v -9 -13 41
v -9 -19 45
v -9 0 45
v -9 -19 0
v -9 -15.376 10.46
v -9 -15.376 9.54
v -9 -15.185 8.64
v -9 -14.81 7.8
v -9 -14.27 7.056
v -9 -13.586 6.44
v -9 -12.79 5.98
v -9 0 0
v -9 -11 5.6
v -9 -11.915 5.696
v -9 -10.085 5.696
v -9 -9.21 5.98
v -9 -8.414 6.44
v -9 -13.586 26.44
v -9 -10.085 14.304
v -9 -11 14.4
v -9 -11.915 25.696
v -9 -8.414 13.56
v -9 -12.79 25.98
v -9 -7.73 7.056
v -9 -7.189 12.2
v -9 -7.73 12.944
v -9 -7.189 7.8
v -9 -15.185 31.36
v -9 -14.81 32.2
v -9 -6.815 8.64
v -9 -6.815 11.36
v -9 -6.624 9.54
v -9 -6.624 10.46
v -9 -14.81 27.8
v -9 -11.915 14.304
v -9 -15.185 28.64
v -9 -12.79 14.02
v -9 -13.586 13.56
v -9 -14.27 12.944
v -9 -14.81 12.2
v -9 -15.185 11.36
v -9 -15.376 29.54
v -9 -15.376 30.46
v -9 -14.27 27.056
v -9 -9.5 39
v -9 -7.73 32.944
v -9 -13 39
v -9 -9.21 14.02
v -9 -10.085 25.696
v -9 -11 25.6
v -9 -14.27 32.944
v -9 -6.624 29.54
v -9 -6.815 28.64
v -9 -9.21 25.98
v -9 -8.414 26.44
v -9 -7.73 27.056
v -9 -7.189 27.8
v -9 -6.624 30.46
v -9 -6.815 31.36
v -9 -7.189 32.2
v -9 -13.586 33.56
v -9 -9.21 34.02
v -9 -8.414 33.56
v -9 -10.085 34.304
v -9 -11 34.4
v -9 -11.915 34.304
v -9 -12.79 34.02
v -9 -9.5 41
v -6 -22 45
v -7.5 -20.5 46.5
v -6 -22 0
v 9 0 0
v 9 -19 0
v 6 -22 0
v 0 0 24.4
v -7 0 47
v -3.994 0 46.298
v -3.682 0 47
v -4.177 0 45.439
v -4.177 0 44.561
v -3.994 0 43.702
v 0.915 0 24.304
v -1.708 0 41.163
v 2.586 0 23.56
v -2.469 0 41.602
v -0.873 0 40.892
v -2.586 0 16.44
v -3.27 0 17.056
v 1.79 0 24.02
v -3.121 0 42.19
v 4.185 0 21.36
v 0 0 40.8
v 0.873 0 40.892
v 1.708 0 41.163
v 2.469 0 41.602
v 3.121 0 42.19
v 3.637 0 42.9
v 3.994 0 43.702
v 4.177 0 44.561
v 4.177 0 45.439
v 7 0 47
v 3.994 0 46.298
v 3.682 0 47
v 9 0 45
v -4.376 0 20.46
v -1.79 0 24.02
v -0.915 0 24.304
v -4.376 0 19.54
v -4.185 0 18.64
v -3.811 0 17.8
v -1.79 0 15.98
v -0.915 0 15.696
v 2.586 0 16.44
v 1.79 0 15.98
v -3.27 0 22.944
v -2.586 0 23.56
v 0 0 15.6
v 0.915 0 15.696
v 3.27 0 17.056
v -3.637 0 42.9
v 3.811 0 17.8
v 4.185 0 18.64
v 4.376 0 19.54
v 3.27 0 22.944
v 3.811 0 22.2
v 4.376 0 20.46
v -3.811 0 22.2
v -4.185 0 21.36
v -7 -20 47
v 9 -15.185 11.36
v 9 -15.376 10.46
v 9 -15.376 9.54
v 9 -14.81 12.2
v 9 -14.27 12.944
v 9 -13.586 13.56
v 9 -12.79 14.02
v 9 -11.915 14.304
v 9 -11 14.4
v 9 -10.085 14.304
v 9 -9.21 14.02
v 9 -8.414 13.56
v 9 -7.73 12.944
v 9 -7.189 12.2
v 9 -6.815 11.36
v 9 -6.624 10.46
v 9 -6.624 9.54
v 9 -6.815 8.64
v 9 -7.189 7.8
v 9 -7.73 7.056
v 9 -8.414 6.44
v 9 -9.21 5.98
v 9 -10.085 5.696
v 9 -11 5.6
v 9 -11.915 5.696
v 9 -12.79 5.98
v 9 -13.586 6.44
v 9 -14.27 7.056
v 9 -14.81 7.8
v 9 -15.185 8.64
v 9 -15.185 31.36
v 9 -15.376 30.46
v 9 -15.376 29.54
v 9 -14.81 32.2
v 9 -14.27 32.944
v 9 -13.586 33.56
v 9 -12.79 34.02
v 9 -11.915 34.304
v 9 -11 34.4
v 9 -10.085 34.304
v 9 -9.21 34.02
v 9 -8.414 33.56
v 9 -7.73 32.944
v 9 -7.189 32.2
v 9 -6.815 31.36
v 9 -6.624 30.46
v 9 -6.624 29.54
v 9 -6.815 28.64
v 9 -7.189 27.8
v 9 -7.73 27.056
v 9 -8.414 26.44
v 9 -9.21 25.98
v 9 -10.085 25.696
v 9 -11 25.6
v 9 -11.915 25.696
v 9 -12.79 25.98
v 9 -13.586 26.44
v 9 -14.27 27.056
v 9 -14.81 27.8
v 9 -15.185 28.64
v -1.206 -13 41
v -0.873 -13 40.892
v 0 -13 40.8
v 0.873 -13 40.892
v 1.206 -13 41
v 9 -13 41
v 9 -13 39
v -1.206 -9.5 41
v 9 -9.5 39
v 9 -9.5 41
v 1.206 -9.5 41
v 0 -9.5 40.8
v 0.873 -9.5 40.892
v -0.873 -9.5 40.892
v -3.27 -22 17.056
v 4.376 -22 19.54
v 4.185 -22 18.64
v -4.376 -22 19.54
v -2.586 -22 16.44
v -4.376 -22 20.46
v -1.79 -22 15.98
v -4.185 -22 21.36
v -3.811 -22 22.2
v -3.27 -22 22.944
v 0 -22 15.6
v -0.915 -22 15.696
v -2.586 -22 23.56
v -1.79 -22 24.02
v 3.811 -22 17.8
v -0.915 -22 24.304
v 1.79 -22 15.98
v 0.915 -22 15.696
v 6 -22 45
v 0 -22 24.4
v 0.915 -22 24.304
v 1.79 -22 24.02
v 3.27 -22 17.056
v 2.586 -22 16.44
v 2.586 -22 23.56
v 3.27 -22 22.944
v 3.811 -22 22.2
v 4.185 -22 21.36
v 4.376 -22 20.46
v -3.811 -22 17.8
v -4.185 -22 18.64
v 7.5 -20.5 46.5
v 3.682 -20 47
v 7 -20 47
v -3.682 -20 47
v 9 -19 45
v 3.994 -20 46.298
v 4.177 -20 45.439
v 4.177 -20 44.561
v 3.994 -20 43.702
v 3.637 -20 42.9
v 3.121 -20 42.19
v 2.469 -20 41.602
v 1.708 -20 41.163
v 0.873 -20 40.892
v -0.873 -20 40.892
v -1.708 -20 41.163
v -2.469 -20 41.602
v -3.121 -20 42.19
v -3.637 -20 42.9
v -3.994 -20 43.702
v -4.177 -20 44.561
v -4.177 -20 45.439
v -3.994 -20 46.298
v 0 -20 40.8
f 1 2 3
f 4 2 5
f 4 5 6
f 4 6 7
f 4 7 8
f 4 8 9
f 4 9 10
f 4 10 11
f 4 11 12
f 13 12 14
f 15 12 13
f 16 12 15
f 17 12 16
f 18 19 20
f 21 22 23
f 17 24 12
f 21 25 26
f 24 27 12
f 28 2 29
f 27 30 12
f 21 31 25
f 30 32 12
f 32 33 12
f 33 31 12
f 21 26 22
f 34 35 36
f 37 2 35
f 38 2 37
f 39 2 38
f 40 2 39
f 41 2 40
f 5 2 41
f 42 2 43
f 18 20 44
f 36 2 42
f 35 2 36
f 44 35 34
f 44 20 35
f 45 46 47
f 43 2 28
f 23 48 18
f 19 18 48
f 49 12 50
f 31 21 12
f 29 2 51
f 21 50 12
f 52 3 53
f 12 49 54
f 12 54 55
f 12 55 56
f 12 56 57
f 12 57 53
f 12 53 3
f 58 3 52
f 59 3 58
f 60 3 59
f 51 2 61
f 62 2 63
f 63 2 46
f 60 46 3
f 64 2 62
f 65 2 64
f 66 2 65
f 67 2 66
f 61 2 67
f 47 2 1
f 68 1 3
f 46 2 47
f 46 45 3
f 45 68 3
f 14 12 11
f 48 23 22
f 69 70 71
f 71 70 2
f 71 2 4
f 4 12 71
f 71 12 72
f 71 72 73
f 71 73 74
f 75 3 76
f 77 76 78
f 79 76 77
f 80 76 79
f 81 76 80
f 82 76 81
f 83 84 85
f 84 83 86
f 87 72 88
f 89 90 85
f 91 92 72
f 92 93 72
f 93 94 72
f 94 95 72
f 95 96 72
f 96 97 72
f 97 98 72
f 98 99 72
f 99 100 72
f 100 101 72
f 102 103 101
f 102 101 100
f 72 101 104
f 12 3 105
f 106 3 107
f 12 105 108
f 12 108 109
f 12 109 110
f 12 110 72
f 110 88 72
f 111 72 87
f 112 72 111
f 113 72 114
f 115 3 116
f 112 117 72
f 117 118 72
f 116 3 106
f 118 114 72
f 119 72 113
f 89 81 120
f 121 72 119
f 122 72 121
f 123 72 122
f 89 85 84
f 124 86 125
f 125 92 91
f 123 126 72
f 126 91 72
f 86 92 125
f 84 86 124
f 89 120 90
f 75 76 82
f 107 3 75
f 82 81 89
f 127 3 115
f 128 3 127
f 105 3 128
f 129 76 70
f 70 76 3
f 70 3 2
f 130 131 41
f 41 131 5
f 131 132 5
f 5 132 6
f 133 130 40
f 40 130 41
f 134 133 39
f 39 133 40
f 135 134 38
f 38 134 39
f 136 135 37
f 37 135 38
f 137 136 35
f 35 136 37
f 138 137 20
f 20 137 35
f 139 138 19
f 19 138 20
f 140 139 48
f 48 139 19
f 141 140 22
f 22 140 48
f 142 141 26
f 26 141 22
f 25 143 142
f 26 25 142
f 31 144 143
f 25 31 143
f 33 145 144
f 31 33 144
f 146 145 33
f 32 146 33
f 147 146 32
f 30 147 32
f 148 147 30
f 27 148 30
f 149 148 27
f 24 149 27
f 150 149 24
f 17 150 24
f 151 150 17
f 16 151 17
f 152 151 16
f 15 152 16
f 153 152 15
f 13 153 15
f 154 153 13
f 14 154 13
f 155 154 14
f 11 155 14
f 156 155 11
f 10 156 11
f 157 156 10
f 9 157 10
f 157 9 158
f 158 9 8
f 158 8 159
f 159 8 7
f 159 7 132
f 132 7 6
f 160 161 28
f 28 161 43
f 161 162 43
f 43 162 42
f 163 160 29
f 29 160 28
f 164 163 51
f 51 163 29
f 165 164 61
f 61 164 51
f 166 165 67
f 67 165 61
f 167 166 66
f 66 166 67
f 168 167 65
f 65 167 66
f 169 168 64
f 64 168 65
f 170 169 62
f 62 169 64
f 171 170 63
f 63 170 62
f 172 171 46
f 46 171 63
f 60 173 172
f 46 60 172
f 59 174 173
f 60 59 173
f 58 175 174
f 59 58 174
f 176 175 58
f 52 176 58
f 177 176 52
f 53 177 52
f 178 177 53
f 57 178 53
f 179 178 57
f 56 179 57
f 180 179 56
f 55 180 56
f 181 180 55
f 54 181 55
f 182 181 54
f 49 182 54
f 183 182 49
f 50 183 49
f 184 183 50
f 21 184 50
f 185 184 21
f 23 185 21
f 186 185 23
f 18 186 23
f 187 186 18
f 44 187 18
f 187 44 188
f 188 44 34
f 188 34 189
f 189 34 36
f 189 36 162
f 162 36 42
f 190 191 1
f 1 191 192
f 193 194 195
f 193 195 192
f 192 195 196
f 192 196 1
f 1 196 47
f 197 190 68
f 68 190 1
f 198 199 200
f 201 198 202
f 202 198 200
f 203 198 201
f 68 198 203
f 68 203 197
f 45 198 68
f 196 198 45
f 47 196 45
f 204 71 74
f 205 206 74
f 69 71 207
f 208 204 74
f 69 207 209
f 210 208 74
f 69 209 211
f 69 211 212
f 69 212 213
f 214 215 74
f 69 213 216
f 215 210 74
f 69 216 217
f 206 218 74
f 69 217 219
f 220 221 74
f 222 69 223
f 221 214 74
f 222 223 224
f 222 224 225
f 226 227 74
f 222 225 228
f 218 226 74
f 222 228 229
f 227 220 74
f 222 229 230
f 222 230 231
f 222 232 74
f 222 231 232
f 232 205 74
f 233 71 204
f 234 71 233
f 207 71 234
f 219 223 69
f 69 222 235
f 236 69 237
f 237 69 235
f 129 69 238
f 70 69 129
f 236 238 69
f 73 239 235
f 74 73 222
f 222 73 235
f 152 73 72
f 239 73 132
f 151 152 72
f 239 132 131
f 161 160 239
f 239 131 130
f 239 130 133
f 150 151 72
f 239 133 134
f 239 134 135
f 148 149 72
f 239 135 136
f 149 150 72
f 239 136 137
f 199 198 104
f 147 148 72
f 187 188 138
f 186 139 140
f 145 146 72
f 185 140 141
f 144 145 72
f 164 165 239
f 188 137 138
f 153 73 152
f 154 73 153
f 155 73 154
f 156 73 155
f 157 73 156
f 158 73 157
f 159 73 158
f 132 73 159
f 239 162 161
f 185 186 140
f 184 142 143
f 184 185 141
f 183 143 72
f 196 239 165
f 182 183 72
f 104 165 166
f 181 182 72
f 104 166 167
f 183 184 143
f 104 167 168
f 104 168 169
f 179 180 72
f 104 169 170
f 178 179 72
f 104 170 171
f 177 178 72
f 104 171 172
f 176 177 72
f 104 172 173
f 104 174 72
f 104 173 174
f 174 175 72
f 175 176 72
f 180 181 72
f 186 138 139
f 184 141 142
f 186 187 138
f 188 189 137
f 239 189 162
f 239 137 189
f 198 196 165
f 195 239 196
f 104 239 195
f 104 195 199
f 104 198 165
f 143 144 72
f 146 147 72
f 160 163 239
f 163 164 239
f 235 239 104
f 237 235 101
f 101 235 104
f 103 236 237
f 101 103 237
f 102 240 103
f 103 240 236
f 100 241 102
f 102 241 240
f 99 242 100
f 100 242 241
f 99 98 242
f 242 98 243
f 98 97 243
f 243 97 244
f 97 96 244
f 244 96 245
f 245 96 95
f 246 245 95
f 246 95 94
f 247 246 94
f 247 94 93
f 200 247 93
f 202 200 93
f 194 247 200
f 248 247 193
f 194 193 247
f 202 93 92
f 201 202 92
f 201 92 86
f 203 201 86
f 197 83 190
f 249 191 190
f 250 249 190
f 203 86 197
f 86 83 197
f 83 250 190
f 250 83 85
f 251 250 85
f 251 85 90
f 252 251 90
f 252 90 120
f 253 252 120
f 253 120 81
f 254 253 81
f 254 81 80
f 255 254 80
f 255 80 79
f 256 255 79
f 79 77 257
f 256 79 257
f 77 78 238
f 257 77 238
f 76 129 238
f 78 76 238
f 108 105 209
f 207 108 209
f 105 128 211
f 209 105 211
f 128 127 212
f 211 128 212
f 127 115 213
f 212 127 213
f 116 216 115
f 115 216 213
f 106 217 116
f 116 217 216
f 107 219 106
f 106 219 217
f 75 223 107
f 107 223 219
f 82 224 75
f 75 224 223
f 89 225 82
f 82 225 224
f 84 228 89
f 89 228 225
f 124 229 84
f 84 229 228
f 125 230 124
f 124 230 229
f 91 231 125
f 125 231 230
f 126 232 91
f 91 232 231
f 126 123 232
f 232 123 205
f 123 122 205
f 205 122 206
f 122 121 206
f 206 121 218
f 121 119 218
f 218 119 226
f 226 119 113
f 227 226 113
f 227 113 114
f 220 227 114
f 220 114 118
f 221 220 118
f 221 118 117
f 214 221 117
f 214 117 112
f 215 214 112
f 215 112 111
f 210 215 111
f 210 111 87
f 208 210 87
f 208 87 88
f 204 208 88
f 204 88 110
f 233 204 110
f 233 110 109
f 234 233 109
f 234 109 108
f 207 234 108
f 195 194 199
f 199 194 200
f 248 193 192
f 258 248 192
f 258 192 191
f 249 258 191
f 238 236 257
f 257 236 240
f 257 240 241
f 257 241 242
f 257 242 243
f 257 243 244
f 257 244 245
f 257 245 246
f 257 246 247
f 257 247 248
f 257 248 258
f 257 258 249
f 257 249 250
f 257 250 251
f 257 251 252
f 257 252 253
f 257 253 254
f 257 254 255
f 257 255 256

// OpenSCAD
// PRUSA iteration3
// Y frame corners
// GNU GPL v3
// Josef Průša <iam@josefprusa.cz> and contributors
// http://www.reprap.org/wiki/Prusa_Mendel
// http://prusamendel.org


module corner_base(){	
 translate([-9,-11,0])cube([18,22,47]);
}

module corner_holes(){
 translate([-11,-11,0]){
  // Bottom hole
  translate([0,11,10]) rotate([0,90,0]) translate([0,0,-5]) cylinder(h = 270, r=4.4, $fn=30);
  // Top hole
  translate([0,11,30]) rotate([0,90,0]) translate([0,0,-5]) cylinder(h = 270, r=4.4, $fn=30);
  // Middle hole
  translate([11,0,20]) rotate([0,0,90]) rotate([0,90,0]) translate([0,0,-5]) cylinder(h = 270, r=4.4, $fn=30);

  // Washer hole
//  translate([11,-3,20]) rotate([0,0,90]) rotate([0,90,0]) translate([0,0,-5]) cylinder(h = 10, r=11, $fn=30);

  // Top smooth rod insert
  // Smooth rod place
  translate([11,2,45]) rotate([0,90,90]) cylinder(h = 270, r=4.2, $fn=30); 
  // Ziptie
  translate([-5,9,39])  cube([30,3.5,2]);
 }
}

module corner_fancy(){
 // Side corner cutouts
  translate([-8,-9,0]) rotate([0,0,-45-180]) translate([-15,0,-1]) cube([30,30,51]);
  translate([8,-9,0]) rotate([0,0,45-180]) translate([-15,0,-1]) cube([30,30,51]);
 // Top corner cutouts
  translate([7,0,49-2]) rotate([0,45,0]) translate([-15,-15,0]) cube([30,30,30]);
  translate([-7,0,49-2]) rotate([0,-45,0]) translate([-15,-15,0]) cube([30,30,30]);
  rotate([0,0,90]){
   translate([-9,0,49-2]) rotate([0,-45,0]) translate([-15,-15,0]) cube([30,30,30]);
  }
}


// Final part
module corner(){
 // Rotate the part for better printing
 translate([0,0,11]) rotate([-90,0,0]) difference(){
  corner_base();
  corner_holes();
  corner_fancy();
 }
}

rotate([90,0,0]) corner();
